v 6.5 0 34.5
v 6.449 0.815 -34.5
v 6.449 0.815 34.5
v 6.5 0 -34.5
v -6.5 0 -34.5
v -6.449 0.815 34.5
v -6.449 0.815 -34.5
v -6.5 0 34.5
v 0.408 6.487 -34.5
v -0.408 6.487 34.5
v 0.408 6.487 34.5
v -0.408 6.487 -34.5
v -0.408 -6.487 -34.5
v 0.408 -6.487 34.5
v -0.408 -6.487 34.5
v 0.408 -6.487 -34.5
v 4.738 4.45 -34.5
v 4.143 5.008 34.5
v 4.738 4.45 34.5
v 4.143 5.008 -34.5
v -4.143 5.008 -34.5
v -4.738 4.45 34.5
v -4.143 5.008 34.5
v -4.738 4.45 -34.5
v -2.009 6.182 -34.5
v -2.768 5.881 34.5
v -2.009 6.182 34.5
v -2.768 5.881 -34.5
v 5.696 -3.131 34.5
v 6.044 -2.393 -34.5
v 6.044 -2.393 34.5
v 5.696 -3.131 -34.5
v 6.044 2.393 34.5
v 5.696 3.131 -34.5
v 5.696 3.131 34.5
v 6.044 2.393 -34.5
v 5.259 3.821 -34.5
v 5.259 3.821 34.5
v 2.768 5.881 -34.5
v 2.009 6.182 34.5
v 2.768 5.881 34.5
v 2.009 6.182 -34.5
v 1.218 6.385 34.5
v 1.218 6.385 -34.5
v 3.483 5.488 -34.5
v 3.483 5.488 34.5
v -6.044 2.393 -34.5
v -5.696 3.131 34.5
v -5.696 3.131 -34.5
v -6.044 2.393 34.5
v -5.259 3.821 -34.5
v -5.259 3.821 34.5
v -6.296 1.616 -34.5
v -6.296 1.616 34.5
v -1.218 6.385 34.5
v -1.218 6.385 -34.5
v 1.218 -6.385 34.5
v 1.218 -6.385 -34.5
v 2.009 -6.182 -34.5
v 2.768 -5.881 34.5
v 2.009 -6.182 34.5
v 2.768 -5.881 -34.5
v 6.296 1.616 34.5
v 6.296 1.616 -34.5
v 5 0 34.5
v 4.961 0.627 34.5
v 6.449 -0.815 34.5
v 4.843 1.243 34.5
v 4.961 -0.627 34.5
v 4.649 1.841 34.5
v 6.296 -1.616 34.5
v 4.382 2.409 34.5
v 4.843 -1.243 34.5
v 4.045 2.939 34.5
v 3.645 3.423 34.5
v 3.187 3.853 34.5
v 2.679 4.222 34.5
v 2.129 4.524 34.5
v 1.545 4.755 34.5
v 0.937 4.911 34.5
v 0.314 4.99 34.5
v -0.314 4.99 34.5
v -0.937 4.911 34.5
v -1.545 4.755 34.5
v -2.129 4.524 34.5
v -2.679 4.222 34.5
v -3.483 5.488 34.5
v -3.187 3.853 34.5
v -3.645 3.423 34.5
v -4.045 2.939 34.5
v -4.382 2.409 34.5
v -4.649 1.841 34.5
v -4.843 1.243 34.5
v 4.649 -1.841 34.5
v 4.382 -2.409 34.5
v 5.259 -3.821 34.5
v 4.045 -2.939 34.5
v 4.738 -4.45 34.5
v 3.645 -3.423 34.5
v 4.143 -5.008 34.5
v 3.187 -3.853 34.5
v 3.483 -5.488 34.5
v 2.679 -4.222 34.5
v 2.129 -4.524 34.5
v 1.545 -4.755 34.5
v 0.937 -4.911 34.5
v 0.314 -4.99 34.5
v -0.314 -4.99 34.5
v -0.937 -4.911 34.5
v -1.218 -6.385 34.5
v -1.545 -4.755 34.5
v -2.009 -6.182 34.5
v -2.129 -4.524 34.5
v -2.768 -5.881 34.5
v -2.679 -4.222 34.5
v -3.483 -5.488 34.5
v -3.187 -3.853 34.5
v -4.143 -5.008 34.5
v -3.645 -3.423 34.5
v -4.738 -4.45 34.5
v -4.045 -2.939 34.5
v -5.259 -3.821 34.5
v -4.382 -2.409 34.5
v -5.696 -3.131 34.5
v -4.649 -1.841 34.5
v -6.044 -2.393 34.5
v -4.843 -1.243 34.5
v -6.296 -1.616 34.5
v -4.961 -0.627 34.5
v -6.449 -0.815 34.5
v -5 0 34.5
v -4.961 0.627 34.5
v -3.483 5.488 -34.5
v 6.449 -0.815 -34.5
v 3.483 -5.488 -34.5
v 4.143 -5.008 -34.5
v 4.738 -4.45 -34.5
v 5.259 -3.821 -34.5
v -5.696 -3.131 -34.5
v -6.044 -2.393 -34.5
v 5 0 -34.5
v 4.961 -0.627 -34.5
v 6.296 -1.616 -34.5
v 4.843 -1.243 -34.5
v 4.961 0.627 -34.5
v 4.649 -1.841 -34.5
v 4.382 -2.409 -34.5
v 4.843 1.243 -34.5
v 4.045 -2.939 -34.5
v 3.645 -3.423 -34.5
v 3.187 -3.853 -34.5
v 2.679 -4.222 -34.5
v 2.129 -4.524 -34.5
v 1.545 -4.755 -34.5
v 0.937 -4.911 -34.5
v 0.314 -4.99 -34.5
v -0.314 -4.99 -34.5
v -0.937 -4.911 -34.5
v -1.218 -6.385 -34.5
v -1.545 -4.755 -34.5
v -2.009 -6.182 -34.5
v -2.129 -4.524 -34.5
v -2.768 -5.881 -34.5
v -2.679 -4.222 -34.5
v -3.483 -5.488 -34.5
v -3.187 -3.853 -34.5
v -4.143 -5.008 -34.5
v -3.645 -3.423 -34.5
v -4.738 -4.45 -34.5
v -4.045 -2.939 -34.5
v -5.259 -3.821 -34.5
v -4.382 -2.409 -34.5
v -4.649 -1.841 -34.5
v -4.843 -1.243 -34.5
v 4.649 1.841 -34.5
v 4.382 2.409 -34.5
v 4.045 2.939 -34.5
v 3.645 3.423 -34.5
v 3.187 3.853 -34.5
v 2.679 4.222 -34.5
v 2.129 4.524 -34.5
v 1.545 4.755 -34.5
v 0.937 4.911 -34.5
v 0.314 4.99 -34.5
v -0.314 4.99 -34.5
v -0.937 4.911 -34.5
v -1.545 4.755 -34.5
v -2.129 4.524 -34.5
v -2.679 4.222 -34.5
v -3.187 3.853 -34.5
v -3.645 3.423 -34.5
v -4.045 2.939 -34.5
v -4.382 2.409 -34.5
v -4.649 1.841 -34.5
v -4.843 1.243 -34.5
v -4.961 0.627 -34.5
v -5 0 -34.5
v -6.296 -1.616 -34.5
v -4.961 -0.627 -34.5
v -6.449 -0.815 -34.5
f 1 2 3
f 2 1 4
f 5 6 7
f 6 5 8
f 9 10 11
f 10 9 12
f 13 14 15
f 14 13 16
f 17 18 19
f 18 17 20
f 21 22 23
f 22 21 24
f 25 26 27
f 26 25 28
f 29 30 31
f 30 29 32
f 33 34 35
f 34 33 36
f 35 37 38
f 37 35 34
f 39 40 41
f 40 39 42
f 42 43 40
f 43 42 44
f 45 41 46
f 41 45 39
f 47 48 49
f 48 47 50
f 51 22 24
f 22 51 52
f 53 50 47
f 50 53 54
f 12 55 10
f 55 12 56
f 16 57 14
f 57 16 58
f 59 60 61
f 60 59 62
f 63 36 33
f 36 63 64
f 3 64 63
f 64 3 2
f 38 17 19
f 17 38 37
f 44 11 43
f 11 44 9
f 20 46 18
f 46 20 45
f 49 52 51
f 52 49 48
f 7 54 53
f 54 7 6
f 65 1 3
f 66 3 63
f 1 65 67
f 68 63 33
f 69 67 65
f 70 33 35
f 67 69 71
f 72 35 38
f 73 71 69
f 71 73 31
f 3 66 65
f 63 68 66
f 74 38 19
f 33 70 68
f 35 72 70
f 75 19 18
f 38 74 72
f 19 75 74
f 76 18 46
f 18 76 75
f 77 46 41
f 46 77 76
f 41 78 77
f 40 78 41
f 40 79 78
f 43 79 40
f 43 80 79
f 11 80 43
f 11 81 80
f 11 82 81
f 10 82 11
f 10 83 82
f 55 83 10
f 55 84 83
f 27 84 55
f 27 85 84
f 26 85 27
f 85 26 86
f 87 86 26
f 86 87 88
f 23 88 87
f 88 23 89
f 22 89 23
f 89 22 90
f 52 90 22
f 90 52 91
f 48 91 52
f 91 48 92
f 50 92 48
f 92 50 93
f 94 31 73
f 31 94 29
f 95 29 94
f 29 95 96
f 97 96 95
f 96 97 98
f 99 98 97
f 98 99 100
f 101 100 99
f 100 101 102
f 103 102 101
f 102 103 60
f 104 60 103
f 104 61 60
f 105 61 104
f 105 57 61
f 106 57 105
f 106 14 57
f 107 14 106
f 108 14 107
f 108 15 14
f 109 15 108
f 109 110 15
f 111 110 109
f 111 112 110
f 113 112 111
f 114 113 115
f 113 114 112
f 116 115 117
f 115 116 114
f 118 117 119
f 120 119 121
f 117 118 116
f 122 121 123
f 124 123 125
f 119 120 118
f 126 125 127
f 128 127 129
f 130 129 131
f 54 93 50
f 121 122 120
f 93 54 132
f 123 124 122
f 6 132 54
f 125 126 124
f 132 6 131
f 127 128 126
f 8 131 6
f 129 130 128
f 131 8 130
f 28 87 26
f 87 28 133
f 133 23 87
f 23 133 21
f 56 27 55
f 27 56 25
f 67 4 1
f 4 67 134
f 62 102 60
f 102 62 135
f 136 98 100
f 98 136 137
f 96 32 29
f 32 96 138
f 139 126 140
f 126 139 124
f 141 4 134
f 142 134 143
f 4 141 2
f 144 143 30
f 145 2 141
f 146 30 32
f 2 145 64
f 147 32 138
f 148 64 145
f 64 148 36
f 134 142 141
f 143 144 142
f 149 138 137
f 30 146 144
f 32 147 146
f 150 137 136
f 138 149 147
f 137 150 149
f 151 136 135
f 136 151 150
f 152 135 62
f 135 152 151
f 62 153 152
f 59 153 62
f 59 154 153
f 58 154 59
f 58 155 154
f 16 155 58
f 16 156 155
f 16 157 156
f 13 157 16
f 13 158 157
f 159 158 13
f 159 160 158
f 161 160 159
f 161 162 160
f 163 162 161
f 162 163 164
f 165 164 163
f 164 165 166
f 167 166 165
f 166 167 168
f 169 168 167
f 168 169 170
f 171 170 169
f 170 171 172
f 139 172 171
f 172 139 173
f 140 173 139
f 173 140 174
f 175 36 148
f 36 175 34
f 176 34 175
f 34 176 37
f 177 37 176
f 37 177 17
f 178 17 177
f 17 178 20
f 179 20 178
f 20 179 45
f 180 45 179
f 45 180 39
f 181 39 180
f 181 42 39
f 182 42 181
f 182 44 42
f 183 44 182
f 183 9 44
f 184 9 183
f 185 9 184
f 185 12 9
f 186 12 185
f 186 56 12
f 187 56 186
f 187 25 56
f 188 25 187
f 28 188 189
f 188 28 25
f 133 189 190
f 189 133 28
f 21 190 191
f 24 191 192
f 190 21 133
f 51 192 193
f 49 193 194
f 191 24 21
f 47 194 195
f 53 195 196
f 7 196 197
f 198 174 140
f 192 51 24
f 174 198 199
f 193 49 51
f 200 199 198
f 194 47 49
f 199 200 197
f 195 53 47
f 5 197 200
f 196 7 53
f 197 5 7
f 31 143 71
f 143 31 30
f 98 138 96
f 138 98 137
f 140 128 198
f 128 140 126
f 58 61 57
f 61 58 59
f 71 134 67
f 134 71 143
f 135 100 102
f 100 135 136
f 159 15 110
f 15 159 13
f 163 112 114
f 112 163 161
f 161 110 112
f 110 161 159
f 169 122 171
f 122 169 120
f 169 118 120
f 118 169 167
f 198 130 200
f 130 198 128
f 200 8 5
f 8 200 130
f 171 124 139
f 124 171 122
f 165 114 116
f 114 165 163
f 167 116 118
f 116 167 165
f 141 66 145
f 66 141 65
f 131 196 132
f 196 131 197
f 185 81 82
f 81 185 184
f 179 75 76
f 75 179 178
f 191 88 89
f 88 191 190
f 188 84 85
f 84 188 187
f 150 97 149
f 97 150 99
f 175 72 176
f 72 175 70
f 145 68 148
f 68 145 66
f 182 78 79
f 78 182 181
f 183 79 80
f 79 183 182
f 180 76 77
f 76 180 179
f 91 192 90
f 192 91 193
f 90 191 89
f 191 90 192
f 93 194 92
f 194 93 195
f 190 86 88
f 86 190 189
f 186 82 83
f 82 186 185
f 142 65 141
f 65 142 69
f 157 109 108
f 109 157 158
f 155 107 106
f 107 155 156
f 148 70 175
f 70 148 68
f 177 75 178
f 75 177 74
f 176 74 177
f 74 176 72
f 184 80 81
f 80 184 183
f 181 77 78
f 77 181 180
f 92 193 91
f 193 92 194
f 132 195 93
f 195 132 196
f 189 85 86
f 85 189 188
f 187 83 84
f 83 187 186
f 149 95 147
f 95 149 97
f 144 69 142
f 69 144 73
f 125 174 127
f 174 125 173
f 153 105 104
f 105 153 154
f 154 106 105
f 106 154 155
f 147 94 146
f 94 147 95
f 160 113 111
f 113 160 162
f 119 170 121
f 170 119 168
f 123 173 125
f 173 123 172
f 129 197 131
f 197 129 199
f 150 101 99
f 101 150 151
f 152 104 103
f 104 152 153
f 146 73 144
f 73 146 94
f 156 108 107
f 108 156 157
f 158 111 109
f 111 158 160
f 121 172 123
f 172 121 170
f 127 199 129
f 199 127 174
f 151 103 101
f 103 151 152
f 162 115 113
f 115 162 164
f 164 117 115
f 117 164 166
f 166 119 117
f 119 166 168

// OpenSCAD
$fn = 50;


difference() {
	union() {
		translate(v = [0, 0, -34.5000000000]) {
			cylinder(h = 69, r = 6.5000000000);
		}
	}
	union() {
		translate(v = [0, 0, -100.0000000000]) {
			cylinder(h = 200, r = 5);
		}
	}
}
